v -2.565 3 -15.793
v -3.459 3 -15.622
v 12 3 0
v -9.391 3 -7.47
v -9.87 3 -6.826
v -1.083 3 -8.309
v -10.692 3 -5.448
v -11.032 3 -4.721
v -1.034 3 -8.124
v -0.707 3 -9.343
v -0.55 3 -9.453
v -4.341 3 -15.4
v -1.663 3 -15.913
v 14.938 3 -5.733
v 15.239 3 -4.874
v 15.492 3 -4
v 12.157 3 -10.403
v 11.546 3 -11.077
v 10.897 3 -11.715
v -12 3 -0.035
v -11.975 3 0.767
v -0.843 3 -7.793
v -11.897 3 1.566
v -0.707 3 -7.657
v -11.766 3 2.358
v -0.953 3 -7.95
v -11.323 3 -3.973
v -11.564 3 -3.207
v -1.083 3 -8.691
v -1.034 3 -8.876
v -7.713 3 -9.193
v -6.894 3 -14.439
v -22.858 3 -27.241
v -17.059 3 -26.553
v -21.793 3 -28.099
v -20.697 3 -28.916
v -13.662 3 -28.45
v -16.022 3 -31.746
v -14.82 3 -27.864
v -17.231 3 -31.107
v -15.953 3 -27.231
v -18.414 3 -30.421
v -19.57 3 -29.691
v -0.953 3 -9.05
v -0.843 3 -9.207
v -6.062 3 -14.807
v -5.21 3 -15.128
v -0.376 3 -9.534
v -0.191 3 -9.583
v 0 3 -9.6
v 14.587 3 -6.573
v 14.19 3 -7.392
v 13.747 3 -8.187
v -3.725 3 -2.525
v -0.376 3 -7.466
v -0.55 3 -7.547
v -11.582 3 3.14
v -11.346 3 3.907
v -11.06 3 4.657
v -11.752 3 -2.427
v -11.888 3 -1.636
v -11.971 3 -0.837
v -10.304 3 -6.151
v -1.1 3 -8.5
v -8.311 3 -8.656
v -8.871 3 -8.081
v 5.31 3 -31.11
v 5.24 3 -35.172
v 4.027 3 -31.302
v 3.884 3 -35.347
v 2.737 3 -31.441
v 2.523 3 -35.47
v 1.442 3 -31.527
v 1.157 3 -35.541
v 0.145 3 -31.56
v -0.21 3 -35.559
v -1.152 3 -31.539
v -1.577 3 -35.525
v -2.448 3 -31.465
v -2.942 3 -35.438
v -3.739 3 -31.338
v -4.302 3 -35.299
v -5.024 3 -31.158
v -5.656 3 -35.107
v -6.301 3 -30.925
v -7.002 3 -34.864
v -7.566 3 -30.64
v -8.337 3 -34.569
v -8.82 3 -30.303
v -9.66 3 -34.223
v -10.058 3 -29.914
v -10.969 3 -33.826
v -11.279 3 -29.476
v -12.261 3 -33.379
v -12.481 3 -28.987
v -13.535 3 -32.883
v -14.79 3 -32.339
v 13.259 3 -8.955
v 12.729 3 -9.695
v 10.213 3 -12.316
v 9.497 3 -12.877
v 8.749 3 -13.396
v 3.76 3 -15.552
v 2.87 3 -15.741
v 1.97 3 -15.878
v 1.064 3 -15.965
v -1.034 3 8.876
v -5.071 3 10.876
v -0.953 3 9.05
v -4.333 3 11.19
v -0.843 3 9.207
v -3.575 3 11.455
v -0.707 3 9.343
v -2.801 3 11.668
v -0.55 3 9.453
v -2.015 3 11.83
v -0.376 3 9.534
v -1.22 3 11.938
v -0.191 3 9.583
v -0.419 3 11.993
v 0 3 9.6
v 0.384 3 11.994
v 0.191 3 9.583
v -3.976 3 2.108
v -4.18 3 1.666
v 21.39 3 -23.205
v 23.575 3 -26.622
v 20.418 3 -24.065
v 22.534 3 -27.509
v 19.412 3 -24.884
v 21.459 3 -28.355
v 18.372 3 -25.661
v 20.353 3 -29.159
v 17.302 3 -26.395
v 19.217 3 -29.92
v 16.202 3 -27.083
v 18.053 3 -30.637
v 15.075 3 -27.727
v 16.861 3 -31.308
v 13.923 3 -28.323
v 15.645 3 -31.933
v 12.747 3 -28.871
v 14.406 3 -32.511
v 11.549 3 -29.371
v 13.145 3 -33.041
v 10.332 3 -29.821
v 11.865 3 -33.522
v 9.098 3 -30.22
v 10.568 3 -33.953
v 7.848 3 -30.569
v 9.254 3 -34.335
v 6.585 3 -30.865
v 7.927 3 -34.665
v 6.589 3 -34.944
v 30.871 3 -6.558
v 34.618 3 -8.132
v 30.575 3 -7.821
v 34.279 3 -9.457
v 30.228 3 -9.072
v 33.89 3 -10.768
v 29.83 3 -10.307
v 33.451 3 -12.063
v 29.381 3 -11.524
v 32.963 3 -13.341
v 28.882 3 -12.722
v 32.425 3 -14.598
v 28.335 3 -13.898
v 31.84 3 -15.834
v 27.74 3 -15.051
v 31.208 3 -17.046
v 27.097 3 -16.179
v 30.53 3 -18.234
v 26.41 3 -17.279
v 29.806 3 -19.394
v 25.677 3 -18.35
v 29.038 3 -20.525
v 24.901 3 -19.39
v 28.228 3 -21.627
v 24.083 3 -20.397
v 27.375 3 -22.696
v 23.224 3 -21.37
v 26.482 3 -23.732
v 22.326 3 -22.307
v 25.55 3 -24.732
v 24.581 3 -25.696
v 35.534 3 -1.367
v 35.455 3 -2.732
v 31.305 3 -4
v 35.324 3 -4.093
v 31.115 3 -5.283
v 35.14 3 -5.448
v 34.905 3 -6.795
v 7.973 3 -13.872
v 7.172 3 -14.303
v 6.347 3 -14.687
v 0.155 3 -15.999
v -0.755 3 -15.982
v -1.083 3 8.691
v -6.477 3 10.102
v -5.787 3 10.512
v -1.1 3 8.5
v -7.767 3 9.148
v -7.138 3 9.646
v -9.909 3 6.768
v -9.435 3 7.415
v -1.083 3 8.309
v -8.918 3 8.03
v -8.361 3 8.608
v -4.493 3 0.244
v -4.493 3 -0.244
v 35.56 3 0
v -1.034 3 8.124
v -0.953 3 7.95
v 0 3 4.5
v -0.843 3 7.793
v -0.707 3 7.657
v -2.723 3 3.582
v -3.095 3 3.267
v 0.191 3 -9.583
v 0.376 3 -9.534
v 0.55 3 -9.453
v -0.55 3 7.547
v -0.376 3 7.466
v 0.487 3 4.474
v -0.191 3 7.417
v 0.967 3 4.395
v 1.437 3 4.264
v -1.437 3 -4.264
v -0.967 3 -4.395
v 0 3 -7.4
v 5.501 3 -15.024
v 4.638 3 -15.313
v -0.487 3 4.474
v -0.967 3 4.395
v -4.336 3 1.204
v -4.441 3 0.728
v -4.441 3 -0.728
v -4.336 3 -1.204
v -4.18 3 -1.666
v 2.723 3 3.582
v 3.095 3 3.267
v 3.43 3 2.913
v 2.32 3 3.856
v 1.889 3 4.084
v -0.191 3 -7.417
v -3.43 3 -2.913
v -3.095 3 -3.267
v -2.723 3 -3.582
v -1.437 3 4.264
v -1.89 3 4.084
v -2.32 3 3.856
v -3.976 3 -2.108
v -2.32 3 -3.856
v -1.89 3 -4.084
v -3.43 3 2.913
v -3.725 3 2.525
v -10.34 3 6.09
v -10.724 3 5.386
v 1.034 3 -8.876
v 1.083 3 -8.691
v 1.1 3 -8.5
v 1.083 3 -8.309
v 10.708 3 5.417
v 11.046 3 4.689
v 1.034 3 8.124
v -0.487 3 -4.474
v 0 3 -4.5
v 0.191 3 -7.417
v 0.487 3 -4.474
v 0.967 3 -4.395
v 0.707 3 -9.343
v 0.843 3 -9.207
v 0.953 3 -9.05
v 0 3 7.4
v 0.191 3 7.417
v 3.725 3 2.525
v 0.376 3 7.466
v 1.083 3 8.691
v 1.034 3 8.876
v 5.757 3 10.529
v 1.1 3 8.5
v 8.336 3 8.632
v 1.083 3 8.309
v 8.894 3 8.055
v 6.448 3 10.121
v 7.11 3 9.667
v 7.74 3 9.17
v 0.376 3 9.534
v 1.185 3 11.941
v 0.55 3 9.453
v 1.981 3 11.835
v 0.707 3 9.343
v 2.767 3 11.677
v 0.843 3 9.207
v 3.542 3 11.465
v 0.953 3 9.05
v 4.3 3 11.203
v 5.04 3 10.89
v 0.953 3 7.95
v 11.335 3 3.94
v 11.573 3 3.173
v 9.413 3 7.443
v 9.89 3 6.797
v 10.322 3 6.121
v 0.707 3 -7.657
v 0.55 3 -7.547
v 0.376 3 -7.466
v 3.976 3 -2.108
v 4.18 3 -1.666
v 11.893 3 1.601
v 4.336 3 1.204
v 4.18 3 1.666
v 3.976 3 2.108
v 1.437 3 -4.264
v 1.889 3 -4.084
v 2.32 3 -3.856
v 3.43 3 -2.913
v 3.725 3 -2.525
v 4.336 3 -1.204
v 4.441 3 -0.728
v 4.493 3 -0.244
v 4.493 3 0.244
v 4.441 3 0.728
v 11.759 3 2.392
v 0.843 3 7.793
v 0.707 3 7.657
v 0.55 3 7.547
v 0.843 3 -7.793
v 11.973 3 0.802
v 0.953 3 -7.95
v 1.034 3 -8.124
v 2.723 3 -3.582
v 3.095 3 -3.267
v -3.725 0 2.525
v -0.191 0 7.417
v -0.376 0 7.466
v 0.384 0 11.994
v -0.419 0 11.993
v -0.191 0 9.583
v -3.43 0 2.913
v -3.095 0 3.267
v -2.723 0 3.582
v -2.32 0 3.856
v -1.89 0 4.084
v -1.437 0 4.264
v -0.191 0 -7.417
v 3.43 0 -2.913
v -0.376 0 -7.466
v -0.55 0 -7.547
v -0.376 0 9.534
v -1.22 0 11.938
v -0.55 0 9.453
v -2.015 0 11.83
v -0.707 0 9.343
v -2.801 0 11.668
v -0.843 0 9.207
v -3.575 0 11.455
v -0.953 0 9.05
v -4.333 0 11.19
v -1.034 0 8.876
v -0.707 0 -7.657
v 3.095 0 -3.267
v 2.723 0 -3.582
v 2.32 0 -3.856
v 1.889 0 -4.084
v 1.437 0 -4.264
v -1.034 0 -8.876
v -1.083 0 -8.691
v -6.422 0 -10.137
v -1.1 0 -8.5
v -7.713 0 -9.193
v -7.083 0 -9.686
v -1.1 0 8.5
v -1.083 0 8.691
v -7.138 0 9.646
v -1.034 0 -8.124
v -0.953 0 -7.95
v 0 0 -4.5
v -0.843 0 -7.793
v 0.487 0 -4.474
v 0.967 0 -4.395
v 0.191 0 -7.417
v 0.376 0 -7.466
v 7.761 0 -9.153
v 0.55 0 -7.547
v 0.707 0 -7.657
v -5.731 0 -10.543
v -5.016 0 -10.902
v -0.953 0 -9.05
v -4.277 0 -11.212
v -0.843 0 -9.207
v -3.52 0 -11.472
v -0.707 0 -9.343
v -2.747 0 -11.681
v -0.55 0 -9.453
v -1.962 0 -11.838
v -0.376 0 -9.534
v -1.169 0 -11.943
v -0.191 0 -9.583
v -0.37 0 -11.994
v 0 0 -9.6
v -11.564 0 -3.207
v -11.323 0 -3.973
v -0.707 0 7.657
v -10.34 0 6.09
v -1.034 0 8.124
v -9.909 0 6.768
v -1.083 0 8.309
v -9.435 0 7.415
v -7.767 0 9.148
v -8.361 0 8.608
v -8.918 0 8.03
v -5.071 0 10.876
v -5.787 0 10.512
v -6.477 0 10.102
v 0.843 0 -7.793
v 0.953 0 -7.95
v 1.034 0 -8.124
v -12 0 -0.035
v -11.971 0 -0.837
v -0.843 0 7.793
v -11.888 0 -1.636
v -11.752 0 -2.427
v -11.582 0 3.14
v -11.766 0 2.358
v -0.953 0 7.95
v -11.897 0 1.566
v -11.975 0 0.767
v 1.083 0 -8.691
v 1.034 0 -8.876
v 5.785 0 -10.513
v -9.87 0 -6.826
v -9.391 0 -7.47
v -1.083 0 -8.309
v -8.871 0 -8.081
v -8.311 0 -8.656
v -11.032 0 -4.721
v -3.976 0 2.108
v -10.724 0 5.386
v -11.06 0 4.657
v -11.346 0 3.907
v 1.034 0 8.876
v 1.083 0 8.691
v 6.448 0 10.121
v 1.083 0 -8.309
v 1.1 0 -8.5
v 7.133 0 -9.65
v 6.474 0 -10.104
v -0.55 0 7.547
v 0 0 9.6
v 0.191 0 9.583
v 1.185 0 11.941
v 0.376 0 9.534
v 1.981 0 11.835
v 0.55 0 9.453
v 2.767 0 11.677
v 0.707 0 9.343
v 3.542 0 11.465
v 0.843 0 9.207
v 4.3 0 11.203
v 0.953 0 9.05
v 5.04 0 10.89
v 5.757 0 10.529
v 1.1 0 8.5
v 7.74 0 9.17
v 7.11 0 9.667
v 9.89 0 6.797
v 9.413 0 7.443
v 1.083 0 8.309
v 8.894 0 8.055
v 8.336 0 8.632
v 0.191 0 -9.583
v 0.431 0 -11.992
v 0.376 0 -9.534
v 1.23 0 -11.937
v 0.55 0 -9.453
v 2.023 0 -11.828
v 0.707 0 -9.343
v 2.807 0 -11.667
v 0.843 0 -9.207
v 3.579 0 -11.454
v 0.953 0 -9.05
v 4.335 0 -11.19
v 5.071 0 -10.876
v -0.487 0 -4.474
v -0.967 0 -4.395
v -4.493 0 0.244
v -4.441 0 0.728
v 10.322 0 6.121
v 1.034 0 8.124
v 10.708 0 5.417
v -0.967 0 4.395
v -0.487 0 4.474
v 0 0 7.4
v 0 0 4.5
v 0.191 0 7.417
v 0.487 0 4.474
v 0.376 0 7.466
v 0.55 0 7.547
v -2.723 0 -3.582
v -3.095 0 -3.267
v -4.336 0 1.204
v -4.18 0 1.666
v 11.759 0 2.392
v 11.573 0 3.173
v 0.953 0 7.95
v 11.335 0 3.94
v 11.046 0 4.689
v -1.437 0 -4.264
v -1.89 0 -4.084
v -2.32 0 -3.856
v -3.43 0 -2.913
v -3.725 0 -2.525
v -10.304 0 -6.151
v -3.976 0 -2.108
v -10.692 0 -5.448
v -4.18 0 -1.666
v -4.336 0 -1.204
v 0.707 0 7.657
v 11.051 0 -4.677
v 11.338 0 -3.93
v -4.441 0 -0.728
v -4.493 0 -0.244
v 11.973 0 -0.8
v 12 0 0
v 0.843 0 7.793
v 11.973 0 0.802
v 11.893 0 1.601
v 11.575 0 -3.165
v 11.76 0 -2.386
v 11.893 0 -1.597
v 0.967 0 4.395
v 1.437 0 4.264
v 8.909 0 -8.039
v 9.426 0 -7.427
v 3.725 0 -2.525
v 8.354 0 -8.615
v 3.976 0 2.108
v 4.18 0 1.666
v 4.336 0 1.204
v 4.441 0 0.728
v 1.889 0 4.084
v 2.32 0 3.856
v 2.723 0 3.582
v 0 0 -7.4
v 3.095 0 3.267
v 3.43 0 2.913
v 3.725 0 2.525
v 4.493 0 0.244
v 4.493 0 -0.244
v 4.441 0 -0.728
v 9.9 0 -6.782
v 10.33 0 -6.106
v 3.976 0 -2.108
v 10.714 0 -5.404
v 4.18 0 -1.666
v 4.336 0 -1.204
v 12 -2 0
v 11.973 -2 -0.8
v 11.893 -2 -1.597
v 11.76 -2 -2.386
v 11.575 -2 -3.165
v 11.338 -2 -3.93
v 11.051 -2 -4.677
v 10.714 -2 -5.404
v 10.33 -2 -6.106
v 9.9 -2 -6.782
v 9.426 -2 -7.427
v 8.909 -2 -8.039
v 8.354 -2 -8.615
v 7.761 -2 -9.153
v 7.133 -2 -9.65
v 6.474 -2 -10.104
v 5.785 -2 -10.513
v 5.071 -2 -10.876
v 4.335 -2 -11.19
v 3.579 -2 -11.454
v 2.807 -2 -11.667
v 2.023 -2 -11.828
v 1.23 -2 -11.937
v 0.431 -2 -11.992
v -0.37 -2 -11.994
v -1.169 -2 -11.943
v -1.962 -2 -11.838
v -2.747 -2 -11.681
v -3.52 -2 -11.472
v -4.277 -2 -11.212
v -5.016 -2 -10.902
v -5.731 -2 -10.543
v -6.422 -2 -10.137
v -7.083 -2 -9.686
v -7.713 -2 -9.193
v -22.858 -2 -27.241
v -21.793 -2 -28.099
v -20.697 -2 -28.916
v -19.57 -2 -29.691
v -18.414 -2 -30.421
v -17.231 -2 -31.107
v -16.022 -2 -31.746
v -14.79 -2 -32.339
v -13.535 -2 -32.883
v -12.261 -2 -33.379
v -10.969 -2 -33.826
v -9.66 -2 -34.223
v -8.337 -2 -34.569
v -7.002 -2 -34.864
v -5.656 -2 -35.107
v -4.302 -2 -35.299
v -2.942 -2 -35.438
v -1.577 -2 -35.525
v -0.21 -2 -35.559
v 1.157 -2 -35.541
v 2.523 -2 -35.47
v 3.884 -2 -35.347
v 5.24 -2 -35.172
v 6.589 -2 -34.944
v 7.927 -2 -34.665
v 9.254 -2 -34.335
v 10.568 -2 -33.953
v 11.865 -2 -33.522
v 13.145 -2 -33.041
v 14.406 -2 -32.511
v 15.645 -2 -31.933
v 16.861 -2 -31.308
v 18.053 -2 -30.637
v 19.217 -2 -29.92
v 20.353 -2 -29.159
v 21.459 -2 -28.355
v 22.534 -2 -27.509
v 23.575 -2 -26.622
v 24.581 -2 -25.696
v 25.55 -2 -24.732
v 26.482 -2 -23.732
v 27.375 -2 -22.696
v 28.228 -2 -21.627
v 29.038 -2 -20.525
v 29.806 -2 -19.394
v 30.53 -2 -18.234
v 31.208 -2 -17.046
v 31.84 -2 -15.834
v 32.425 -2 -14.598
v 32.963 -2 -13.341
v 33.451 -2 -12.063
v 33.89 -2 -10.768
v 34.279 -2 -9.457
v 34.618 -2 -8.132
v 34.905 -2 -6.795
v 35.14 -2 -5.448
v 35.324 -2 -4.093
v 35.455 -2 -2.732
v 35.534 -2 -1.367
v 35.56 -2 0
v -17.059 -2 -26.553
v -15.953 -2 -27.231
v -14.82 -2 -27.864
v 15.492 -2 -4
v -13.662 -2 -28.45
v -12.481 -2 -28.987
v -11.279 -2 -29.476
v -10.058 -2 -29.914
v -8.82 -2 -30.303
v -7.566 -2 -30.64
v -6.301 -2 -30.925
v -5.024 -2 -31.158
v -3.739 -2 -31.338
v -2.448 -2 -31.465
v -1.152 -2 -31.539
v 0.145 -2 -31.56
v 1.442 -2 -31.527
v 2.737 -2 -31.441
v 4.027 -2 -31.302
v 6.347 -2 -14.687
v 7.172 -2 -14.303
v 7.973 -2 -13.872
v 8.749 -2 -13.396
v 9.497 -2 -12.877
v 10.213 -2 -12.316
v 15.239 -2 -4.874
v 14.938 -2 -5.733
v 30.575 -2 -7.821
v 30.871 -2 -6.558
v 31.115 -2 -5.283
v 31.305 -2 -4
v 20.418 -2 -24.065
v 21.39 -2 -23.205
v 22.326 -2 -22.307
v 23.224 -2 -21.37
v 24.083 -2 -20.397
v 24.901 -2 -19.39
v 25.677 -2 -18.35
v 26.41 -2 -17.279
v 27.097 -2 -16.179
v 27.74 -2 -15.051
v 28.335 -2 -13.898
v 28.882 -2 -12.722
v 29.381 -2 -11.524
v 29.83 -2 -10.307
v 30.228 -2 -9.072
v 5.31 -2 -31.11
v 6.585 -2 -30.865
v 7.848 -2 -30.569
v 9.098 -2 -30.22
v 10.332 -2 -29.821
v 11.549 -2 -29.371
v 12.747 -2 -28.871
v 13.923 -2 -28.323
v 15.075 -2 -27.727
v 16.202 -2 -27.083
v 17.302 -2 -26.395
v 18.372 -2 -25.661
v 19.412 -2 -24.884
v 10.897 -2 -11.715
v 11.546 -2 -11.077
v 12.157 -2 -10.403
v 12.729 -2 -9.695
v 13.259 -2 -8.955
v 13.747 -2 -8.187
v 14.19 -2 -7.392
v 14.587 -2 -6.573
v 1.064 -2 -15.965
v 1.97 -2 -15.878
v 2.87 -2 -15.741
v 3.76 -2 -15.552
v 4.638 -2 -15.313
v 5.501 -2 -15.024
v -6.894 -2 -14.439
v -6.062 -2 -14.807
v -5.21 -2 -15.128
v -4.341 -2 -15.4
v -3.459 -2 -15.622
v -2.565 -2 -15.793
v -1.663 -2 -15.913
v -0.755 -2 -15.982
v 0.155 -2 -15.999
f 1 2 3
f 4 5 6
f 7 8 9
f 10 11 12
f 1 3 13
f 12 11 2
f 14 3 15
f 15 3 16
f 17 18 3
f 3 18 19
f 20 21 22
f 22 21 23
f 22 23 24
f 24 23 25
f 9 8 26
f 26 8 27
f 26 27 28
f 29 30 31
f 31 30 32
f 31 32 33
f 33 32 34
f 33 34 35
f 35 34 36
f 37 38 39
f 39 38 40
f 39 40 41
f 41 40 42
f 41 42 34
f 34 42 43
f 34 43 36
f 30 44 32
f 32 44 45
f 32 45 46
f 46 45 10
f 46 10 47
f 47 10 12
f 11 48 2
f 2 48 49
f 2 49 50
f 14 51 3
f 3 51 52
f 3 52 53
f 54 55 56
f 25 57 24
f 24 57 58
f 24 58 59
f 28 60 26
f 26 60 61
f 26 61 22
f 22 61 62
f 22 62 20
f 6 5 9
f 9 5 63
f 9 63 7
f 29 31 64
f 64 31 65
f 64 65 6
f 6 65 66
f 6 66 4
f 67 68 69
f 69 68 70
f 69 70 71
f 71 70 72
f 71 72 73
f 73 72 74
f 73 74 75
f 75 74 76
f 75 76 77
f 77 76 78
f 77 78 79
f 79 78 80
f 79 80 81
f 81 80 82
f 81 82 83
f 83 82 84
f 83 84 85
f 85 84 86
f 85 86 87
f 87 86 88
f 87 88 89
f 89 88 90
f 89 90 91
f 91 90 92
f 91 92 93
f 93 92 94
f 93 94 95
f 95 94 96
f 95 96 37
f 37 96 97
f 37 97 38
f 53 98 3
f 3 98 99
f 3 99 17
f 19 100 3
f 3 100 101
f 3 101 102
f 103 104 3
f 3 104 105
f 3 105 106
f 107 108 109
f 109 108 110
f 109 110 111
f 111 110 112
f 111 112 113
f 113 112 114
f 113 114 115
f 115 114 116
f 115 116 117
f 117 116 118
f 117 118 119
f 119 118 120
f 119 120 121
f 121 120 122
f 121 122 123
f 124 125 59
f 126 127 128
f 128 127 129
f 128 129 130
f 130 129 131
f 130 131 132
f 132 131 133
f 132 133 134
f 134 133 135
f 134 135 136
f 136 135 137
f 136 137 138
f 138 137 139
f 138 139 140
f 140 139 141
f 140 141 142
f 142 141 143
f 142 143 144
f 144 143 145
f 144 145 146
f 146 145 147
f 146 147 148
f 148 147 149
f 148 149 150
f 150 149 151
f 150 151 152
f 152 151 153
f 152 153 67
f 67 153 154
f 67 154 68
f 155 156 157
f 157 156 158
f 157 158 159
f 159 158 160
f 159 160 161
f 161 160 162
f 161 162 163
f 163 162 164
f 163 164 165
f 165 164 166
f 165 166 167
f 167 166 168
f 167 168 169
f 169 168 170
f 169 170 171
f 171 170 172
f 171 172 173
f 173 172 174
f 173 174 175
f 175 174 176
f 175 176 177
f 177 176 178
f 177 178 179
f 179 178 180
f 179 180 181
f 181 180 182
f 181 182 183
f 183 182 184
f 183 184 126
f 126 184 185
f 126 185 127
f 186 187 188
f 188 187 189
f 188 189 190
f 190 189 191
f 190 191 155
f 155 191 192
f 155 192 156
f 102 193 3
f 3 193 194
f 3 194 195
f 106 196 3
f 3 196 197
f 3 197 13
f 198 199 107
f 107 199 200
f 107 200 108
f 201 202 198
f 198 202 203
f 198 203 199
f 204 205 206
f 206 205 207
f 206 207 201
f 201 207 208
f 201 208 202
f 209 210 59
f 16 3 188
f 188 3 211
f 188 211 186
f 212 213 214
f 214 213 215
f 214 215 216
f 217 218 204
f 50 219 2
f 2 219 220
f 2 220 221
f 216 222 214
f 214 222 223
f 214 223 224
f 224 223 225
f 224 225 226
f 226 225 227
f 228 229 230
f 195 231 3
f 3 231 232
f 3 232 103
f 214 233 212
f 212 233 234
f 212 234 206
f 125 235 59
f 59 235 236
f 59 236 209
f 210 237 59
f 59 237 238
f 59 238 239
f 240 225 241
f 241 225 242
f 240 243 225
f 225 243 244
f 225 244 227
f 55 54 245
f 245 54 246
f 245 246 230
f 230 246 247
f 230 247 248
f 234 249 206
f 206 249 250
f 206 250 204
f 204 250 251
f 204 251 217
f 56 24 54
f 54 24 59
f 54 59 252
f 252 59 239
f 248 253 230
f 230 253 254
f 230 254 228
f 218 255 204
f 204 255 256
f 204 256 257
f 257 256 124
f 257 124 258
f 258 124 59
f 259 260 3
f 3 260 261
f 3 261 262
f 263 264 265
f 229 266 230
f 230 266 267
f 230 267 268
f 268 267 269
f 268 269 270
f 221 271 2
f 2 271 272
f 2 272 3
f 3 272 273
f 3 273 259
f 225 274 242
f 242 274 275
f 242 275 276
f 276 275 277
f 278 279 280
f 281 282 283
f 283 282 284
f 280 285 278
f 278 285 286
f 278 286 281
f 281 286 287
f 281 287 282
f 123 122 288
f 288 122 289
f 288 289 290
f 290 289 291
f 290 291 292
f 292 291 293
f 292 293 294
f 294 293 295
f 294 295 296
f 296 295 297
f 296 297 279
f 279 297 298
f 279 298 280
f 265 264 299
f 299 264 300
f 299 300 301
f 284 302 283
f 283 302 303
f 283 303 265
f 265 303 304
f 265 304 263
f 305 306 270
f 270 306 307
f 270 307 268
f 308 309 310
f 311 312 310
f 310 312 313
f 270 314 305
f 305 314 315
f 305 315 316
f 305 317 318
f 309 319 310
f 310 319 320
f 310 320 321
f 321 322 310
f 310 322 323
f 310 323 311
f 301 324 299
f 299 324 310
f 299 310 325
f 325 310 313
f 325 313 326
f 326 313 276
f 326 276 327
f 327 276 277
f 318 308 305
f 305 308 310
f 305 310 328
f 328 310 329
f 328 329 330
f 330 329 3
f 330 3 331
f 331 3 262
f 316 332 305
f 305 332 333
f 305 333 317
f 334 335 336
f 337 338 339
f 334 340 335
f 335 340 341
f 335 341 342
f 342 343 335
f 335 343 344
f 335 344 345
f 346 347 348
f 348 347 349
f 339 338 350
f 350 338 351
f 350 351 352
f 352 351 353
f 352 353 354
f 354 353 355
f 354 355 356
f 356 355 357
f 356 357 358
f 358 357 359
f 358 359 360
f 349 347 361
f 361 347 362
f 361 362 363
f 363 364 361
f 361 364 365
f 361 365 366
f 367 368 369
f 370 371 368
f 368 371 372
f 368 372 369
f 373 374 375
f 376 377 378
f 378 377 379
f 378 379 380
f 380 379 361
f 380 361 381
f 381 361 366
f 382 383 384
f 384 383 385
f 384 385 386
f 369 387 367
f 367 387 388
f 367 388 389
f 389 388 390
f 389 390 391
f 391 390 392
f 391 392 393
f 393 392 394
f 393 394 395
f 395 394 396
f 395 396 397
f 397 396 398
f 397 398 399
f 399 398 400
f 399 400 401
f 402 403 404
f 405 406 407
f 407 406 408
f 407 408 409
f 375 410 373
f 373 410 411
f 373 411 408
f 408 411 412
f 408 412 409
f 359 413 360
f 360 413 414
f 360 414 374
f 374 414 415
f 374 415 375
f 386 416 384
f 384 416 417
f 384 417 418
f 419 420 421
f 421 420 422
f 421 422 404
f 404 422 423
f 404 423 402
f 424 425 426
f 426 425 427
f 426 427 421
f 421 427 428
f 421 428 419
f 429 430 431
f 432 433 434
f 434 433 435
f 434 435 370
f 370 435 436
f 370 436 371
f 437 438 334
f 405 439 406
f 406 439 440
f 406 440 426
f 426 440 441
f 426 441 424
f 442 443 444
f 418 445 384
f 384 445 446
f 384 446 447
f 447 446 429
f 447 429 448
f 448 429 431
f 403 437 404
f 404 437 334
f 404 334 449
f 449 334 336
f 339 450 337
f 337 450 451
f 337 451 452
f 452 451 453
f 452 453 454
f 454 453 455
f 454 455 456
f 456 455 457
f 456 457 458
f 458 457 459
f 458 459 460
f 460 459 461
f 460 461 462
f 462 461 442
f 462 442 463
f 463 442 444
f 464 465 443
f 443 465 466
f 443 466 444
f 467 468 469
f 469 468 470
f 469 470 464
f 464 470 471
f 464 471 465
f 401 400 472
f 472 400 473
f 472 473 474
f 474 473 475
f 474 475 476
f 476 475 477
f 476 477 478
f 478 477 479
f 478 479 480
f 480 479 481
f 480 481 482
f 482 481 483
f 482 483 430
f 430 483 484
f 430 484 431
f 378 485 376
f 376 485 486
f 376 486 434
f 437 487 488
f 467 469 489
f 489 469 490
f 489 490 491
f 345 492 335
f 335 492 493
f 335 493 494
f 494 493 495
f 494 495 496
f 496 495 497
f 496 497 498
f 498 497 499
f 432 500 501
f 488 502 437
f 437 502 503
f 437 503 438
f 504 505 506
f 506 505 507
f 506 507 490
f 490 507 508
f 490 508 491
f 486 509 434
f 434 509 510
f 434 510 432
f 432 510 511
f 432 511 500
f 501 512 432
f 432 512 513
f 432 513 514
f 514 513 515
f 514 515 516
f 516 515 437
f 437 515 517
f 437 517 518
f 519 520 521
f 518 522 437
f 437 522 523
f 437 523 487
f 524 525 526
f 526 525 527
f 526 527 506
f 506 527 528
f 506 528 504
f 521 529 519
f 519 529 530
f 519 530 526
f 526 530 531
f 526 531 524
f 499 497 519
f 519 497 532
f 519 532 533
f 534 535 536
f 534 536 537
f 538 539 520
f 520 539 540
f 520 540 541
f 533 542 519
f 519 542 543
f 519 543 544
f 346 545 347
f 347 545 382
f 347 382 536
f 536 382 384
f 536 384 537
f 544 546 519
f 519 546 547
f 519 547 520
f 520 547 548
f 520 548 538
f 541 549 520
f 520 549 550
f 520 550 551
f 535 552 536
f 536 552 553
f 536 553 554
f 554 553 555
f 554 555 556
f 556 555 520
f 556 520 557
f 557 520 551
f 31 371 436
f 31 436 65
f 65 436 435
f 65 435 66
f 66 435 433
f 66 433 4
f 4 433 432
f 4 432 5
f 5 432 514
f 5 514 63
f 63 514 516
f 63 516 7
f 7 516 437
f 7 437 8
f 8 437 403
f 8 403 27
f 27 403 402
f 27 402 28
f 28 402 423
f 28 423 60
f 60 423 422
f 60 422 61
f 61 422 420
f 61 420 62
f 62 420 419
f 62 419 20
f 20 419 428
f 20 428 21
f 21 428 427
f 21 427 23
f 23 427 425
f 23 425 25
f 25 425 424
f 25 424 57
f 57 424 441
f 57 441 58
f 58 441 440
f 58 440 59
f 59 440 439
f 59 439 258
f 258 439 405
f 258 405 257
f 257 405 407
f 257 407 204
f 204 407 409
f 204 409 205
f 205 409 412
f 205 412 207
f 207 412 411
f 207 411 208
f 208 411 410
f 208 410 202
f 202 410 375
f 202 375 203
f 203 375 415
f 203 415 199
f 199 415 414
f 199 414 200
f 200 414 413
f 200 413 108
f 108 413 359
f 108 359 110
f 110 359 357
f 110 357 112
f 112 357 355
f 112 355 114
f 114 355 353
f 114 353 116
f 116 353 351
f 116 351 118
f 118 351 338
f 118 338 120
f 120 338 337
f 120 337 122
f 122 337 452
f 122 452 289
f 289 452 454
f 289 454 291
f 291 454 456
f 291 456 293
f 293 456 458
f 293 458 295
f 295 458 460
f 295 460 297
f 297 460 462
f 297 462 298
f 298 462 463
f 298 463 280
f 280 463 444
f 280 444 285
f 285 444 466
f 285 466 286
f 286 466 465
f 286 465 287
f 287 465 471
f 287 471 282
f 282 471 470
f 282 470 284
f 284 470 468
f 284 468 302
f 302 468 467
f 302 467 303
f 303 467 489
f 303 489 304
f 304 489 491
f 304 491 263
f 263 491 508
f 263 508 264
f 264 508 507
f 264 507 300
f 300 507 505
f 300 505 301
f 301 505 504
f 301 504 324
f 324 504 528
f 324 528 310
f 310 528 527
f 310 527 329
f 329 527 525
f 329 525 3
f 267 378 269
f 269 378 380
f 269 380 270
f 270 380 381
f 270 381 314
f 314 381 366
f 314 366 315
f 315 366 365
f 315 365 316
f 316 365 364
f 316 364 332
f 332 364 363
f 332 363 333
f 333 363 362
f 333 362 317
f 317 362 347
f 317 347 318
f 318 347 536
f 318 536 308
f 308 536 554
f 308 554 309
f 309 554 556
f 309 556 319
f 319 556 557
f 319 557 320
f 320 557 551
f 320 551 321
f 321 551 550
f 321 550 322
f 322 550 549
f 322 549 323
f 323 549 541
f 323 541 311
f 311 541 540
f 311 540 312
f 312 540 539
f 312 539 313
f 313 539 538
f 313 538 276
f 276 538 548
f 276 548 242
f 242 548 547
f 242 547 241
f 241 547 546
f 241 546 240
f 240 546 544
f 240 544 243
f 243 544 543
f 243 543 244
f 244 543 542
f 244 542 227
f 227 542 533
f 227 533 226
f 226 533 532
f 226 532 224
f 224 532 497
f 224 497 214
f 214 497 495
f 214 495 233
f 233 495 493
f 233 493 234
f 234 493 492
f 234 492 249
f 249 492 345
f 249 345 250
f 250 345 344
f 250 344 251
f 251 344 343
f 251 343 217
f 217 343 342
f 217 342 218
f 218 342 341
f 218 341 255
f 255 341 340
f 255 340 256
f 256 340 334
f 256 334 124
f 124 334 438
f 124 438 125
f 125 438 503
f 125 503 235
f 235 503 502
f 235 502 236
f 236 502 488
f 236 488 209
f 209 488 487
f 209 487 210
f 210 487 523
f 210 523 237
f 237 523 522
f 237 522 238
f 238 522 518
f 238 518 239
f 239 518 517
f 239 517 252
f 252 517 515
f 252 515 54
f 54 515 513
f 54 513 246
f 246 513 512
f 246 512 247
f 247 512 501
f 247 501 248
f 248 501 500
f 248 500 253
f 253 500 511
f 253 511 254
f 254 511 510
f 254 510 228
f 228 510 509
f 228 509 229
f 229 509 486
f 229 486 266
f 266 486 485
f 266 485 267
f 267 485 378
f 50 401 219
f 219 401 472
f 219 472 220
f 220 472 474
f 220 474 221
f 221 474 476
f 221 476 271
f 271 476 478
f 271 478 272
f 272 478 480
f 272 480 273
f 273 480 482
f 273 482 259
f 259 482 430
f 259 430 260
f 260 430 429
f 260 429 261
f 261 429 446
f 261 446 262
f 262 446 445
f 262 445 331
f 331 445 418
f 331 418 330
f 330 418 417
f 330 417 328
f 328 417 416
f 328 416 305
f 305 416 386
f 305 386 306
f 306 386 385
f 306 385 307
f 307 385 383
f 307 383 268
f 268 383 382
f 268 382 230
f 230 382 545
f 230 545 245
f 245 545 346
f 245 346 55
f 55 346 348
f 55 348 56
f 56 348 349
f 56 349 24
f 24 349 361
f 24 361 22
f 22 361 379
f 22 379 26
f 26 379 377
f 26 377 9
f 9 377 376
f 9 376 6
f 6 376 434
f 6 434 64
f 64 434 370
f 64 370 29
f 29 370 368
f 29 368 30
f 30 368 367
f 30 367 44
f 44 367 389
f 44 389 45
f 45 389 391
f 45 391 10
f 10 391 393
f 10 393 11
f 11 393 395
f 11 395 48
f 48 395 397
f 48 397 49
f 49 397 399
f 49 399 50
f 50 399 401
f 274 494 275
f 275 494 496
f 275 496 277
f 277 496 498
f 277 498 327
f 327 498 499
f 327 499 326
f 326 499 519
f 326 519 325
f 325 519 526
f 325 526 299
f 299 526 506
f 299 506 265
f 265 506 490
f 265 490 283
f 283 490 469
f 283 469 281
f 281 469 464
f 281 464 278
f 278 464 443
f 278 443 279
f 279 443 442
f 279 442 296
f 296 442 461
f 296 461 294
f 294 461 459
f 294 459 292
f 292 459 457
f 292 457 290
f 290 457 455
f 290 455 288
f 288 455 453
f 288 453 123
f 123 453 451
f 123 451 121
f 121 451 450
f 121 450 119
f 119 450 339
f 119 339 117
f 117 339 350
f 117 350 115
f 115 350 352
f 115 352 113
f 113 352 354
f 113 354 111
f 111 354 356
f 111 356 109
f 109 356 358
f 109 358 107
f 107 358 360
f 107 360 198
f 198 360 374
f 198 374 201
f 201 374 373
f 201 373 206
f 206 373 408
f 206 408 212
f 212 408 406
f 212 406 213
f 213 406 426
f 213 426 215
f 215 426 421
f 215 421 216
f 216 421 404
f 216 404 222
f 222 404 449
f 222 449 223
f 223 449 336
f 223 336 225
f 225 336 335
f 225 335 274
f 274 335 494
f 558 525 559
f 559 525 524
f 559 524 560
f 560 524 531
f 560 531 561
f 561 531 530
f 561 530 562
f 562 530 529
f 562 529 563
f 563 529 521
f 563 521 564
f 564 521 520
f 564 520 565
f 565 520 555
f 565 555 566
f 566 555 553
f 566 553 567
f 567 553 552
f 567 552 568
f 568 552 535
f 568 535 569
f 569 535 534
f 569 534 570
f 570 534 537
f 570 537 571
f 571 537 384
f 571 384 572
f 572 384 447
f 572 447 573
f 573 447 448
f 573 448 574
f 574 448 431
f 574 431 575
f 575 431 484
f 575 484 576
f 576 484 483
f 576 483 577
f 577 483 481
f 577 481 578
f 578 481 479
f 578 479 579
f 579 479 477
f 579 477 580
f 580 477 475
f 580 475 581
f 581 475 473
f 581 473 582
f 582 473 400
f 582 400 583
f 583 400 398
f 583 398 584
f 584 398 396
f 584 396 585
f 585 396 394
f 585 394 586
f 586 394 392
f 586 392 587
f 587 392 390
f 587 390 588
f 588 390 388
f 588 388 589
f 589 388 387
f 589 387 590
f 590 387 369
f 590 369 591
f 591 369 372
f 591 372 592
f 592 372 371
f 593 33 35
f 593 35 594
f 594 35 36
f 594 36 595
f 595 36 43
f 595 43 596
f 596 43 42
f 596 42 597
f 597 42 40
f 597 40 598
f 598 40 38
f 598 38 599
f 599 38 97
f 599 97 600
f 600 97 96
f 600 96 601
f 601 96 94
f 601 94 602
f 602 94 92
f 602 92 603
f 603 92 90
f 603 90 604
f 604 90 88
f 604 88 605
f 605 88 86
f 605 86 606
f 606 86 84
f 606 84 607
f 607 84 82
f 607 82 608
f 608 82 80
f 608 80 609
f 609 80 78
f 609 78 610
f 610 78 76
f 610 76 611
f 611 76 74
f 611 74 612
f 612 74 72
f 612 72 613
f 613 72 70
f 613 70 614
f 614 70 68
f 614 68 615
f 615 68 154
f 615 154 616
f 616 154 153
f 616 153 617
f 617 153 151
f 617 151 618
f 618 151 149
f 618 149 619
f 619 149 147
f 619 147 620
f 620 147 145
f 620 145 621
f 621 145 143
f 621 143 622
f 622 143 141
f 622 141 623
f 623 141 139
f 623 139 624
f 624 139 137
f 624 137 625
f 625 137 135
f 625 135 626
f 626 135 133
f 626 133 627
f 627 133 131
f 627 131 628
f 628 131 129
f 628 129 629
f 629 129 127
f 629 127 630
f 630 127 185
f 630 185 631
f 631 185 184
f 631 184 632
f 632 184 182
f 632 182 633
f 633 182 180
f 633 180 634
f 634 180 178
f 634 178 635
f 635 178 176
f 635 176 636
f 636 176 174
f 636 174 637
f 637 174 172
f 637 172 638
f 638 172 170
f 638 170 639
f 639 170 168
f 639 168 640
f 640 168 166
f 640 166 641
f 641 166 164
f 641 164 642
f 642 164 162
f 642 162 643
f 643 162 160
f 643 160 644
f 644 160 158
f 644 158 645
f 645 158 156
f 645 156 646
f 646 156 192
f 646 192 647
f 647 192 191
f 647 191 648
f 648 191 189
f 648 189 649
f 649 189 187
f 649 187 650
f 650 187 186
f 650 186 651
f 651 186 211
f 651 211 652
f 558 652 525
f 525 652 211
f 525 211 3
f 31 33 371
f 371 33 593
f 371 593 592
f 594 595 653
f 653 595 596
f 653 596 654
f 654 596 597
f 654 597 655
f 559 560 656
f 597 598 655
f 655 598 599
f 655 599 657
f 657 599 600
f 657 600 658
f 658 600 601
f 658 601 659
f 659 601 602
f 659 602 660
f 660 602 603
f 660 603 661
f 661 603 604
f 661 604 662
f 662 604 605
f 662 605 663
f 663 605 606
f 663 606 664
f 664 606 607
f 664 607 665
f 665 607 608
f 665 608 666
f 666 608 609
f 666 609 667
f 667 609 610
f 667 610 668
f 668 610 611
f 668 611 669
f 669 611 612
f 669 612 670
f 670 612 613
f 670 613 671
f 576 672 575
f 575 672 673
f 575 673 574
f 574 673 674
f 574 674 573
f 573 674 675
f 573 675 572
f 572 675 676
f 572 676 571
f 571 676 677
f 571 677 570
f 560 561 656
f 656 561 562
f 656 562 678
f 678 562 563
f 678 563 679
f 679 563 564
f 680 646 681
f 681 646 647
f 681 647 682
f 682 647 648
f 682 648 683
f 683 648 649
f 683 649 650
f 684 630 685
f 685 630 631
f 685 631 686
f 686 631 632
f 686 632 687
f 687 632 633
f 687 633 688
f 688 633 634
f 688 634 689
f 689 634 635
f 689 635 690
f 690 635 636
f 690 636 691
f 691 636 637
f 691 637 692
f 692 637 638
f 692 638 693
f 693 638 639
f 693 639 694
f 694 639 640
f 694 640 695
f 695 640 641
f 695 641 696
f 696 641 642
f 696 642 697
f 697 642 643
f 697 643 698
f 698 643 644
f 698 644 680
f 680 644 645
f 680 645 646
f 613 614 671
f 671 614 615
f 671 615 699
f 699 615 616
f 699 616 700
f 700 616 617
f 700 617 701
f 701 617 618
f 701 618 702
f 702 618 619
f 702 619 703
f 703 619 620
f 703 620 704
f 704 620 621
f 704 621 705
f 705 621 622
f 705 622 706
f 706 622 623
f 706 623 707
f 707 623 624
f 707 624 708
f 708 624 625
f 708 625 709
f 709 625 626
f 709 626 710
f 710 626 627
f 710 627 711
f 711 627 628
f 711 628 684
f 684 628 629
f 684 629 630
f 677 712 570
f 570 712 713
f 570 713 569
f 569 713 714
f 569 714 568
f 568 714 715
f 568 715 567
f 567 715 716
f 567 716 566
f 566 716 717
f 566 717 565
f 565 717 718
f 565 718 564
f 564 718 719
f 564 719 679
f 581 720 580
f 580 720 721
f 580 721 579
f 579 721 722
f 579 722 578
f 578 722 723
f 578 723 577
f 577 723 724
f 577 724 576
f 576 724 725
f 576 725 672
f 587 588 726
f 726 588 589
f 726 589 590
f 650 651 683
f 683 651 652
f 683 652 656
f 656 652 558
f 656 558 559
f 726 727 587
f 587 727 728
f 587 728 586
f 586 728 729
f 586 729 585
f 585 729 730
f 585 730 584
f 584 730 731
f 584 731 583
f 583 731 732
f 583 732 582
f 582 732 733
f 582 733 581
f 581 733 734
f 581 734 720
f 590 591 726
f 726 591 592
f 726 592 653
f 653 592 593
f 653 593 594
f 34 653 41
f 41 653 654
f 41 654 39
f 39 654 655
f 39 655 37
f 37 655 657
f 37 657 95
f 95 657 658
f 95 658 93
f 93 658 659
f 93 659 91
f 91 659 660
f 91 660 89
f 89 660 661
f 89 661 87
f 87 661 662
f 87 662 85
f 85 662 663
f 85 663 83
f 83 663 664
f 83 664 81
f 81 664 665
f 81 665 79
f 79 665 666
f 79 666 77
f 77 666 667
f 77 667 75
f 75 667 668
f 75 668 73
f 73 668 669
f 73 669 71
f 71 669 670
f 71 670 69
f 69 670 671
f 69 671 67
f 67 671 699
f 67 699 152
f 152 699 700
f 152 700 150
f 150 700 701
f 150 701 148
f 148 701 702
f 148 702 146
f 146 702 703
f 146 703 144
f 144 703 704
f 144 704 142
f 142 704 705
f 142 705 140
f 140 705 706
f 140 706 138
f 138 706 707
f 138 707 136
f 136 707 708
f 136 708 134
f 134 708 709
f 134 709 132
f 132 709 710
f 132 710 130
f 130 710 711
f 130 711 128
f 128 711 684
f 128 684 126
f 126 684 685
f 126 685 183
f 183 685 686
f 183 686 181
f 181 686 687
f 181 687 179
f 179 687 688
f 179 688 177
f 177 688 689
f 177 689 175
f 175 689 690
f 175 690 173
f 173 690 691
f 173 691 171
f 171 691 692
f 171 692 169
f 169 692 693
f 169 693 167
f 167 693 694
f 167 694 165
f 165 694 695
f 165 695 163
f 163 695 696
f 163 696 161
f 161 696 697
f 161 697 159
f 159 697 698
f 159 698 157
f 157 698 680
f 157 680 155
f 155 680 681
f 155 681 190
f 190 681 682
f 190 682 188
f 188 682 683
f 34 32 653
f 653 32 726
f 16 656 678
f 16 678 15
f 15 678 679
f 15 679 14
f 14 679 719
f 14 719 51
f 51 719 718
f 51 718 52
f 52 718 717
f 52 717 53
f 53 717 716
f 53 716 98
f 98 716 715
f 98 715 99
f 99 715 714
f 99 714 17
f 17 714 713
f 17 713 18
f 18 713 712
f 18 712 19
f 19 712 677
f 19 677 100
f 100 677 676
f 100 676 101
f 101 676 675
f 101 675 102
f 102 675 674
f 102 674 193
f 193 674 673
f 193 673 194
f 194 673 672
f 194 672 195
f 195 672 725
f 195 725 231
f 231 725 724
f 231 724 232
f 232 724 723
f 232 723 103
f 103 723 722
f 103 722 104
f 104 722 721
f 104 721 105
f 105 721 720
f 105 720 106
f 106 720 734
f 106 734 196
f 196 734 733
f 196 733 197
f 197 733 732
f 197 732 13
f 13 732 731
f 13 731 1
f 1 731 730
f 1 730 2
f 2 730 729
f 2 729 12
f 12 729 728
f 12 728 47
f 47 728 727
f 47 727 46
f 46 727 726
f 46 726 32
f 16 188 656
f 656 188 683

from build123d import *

# Parameters (mm, degrees)
SKETCH1_R           = 12
SKETCH1_R_2         = 4.5
SKETCH1_R_3         = 1.1
BOSS_EXTRUDE1_DEPTH = 3
BOSS_EXTRUDE2_DEPTH = 5
CUT_EXTRUDE1_DEPTH  = 6


with BuildPart() as part:
    # Sketch1 → Boss-Extrude1 (new body)
    with BuildSketch(Plane(origin=(0, 0, 0), x_dir=(1, 0, 0), z_dir=(0, 1, 0))):
        Circle(SKETCH1_R)
        Circle(SKETCH1_R_2, mode=Mode.SUBTRACT)
        with Locations((0, 8.5)):
            Circle(SKETCH1_R_3, mode=Mode.SUBTRACT)
        with Locations((0, -8.5)):
            Circle(SKETCH1_R_3, mode=Mode.SUBTRACT)
    extrude(amount=BOSS_EXTRUDE1_DEPTH)

    # Sketch2 → Boss-Extrude2 (add)
    with BuildSketch(Plane(origin=(0, 3, 0), x_dir=(1, 0, 0), z_dir=(0, 1, 0))):
        with BuildLine():
            Line((12, 0), (35.56, 0))
            ThreePointArc((35.56, 0), (15.028305387, 32.228304907), (-22.8575274, 27.240540397))
            Line((-22.8575274, 27.240540397), (-7.713451316, 9.192533317))
            ThreePointArc((-7.713451316, 9.192533317), (5.071419141, 10.875693444), (12, 0))
        make_face()
    extrude(amount=-BOSS_EXTRUDE2_DEPTH)

    # Sketch3 → Cut-Extrude1 (cut, through all)
    with BuildSketch(Plane.XZ.offset(2)):
        with BuildLine():
            Line((31.305488337, -4), (15.491933385, -4))
            ThreePointArc((15.491933385, -4), (6.761892188, -14.500924593), (-6.893845057, -14.438659921))
            Line((-6.893845057, -14.438659921), (-17.058602246, -26.552545818))
            ThreePointArc((-17.058602246, -26.552545818), (13.337832341, -28.603073759), (31.305488337, -4))
        make_face()
    extrude(amount=-CUT_EXTRUDE1_DEPTH, mode=Mode.SUBTRACT)


solid = part.part
